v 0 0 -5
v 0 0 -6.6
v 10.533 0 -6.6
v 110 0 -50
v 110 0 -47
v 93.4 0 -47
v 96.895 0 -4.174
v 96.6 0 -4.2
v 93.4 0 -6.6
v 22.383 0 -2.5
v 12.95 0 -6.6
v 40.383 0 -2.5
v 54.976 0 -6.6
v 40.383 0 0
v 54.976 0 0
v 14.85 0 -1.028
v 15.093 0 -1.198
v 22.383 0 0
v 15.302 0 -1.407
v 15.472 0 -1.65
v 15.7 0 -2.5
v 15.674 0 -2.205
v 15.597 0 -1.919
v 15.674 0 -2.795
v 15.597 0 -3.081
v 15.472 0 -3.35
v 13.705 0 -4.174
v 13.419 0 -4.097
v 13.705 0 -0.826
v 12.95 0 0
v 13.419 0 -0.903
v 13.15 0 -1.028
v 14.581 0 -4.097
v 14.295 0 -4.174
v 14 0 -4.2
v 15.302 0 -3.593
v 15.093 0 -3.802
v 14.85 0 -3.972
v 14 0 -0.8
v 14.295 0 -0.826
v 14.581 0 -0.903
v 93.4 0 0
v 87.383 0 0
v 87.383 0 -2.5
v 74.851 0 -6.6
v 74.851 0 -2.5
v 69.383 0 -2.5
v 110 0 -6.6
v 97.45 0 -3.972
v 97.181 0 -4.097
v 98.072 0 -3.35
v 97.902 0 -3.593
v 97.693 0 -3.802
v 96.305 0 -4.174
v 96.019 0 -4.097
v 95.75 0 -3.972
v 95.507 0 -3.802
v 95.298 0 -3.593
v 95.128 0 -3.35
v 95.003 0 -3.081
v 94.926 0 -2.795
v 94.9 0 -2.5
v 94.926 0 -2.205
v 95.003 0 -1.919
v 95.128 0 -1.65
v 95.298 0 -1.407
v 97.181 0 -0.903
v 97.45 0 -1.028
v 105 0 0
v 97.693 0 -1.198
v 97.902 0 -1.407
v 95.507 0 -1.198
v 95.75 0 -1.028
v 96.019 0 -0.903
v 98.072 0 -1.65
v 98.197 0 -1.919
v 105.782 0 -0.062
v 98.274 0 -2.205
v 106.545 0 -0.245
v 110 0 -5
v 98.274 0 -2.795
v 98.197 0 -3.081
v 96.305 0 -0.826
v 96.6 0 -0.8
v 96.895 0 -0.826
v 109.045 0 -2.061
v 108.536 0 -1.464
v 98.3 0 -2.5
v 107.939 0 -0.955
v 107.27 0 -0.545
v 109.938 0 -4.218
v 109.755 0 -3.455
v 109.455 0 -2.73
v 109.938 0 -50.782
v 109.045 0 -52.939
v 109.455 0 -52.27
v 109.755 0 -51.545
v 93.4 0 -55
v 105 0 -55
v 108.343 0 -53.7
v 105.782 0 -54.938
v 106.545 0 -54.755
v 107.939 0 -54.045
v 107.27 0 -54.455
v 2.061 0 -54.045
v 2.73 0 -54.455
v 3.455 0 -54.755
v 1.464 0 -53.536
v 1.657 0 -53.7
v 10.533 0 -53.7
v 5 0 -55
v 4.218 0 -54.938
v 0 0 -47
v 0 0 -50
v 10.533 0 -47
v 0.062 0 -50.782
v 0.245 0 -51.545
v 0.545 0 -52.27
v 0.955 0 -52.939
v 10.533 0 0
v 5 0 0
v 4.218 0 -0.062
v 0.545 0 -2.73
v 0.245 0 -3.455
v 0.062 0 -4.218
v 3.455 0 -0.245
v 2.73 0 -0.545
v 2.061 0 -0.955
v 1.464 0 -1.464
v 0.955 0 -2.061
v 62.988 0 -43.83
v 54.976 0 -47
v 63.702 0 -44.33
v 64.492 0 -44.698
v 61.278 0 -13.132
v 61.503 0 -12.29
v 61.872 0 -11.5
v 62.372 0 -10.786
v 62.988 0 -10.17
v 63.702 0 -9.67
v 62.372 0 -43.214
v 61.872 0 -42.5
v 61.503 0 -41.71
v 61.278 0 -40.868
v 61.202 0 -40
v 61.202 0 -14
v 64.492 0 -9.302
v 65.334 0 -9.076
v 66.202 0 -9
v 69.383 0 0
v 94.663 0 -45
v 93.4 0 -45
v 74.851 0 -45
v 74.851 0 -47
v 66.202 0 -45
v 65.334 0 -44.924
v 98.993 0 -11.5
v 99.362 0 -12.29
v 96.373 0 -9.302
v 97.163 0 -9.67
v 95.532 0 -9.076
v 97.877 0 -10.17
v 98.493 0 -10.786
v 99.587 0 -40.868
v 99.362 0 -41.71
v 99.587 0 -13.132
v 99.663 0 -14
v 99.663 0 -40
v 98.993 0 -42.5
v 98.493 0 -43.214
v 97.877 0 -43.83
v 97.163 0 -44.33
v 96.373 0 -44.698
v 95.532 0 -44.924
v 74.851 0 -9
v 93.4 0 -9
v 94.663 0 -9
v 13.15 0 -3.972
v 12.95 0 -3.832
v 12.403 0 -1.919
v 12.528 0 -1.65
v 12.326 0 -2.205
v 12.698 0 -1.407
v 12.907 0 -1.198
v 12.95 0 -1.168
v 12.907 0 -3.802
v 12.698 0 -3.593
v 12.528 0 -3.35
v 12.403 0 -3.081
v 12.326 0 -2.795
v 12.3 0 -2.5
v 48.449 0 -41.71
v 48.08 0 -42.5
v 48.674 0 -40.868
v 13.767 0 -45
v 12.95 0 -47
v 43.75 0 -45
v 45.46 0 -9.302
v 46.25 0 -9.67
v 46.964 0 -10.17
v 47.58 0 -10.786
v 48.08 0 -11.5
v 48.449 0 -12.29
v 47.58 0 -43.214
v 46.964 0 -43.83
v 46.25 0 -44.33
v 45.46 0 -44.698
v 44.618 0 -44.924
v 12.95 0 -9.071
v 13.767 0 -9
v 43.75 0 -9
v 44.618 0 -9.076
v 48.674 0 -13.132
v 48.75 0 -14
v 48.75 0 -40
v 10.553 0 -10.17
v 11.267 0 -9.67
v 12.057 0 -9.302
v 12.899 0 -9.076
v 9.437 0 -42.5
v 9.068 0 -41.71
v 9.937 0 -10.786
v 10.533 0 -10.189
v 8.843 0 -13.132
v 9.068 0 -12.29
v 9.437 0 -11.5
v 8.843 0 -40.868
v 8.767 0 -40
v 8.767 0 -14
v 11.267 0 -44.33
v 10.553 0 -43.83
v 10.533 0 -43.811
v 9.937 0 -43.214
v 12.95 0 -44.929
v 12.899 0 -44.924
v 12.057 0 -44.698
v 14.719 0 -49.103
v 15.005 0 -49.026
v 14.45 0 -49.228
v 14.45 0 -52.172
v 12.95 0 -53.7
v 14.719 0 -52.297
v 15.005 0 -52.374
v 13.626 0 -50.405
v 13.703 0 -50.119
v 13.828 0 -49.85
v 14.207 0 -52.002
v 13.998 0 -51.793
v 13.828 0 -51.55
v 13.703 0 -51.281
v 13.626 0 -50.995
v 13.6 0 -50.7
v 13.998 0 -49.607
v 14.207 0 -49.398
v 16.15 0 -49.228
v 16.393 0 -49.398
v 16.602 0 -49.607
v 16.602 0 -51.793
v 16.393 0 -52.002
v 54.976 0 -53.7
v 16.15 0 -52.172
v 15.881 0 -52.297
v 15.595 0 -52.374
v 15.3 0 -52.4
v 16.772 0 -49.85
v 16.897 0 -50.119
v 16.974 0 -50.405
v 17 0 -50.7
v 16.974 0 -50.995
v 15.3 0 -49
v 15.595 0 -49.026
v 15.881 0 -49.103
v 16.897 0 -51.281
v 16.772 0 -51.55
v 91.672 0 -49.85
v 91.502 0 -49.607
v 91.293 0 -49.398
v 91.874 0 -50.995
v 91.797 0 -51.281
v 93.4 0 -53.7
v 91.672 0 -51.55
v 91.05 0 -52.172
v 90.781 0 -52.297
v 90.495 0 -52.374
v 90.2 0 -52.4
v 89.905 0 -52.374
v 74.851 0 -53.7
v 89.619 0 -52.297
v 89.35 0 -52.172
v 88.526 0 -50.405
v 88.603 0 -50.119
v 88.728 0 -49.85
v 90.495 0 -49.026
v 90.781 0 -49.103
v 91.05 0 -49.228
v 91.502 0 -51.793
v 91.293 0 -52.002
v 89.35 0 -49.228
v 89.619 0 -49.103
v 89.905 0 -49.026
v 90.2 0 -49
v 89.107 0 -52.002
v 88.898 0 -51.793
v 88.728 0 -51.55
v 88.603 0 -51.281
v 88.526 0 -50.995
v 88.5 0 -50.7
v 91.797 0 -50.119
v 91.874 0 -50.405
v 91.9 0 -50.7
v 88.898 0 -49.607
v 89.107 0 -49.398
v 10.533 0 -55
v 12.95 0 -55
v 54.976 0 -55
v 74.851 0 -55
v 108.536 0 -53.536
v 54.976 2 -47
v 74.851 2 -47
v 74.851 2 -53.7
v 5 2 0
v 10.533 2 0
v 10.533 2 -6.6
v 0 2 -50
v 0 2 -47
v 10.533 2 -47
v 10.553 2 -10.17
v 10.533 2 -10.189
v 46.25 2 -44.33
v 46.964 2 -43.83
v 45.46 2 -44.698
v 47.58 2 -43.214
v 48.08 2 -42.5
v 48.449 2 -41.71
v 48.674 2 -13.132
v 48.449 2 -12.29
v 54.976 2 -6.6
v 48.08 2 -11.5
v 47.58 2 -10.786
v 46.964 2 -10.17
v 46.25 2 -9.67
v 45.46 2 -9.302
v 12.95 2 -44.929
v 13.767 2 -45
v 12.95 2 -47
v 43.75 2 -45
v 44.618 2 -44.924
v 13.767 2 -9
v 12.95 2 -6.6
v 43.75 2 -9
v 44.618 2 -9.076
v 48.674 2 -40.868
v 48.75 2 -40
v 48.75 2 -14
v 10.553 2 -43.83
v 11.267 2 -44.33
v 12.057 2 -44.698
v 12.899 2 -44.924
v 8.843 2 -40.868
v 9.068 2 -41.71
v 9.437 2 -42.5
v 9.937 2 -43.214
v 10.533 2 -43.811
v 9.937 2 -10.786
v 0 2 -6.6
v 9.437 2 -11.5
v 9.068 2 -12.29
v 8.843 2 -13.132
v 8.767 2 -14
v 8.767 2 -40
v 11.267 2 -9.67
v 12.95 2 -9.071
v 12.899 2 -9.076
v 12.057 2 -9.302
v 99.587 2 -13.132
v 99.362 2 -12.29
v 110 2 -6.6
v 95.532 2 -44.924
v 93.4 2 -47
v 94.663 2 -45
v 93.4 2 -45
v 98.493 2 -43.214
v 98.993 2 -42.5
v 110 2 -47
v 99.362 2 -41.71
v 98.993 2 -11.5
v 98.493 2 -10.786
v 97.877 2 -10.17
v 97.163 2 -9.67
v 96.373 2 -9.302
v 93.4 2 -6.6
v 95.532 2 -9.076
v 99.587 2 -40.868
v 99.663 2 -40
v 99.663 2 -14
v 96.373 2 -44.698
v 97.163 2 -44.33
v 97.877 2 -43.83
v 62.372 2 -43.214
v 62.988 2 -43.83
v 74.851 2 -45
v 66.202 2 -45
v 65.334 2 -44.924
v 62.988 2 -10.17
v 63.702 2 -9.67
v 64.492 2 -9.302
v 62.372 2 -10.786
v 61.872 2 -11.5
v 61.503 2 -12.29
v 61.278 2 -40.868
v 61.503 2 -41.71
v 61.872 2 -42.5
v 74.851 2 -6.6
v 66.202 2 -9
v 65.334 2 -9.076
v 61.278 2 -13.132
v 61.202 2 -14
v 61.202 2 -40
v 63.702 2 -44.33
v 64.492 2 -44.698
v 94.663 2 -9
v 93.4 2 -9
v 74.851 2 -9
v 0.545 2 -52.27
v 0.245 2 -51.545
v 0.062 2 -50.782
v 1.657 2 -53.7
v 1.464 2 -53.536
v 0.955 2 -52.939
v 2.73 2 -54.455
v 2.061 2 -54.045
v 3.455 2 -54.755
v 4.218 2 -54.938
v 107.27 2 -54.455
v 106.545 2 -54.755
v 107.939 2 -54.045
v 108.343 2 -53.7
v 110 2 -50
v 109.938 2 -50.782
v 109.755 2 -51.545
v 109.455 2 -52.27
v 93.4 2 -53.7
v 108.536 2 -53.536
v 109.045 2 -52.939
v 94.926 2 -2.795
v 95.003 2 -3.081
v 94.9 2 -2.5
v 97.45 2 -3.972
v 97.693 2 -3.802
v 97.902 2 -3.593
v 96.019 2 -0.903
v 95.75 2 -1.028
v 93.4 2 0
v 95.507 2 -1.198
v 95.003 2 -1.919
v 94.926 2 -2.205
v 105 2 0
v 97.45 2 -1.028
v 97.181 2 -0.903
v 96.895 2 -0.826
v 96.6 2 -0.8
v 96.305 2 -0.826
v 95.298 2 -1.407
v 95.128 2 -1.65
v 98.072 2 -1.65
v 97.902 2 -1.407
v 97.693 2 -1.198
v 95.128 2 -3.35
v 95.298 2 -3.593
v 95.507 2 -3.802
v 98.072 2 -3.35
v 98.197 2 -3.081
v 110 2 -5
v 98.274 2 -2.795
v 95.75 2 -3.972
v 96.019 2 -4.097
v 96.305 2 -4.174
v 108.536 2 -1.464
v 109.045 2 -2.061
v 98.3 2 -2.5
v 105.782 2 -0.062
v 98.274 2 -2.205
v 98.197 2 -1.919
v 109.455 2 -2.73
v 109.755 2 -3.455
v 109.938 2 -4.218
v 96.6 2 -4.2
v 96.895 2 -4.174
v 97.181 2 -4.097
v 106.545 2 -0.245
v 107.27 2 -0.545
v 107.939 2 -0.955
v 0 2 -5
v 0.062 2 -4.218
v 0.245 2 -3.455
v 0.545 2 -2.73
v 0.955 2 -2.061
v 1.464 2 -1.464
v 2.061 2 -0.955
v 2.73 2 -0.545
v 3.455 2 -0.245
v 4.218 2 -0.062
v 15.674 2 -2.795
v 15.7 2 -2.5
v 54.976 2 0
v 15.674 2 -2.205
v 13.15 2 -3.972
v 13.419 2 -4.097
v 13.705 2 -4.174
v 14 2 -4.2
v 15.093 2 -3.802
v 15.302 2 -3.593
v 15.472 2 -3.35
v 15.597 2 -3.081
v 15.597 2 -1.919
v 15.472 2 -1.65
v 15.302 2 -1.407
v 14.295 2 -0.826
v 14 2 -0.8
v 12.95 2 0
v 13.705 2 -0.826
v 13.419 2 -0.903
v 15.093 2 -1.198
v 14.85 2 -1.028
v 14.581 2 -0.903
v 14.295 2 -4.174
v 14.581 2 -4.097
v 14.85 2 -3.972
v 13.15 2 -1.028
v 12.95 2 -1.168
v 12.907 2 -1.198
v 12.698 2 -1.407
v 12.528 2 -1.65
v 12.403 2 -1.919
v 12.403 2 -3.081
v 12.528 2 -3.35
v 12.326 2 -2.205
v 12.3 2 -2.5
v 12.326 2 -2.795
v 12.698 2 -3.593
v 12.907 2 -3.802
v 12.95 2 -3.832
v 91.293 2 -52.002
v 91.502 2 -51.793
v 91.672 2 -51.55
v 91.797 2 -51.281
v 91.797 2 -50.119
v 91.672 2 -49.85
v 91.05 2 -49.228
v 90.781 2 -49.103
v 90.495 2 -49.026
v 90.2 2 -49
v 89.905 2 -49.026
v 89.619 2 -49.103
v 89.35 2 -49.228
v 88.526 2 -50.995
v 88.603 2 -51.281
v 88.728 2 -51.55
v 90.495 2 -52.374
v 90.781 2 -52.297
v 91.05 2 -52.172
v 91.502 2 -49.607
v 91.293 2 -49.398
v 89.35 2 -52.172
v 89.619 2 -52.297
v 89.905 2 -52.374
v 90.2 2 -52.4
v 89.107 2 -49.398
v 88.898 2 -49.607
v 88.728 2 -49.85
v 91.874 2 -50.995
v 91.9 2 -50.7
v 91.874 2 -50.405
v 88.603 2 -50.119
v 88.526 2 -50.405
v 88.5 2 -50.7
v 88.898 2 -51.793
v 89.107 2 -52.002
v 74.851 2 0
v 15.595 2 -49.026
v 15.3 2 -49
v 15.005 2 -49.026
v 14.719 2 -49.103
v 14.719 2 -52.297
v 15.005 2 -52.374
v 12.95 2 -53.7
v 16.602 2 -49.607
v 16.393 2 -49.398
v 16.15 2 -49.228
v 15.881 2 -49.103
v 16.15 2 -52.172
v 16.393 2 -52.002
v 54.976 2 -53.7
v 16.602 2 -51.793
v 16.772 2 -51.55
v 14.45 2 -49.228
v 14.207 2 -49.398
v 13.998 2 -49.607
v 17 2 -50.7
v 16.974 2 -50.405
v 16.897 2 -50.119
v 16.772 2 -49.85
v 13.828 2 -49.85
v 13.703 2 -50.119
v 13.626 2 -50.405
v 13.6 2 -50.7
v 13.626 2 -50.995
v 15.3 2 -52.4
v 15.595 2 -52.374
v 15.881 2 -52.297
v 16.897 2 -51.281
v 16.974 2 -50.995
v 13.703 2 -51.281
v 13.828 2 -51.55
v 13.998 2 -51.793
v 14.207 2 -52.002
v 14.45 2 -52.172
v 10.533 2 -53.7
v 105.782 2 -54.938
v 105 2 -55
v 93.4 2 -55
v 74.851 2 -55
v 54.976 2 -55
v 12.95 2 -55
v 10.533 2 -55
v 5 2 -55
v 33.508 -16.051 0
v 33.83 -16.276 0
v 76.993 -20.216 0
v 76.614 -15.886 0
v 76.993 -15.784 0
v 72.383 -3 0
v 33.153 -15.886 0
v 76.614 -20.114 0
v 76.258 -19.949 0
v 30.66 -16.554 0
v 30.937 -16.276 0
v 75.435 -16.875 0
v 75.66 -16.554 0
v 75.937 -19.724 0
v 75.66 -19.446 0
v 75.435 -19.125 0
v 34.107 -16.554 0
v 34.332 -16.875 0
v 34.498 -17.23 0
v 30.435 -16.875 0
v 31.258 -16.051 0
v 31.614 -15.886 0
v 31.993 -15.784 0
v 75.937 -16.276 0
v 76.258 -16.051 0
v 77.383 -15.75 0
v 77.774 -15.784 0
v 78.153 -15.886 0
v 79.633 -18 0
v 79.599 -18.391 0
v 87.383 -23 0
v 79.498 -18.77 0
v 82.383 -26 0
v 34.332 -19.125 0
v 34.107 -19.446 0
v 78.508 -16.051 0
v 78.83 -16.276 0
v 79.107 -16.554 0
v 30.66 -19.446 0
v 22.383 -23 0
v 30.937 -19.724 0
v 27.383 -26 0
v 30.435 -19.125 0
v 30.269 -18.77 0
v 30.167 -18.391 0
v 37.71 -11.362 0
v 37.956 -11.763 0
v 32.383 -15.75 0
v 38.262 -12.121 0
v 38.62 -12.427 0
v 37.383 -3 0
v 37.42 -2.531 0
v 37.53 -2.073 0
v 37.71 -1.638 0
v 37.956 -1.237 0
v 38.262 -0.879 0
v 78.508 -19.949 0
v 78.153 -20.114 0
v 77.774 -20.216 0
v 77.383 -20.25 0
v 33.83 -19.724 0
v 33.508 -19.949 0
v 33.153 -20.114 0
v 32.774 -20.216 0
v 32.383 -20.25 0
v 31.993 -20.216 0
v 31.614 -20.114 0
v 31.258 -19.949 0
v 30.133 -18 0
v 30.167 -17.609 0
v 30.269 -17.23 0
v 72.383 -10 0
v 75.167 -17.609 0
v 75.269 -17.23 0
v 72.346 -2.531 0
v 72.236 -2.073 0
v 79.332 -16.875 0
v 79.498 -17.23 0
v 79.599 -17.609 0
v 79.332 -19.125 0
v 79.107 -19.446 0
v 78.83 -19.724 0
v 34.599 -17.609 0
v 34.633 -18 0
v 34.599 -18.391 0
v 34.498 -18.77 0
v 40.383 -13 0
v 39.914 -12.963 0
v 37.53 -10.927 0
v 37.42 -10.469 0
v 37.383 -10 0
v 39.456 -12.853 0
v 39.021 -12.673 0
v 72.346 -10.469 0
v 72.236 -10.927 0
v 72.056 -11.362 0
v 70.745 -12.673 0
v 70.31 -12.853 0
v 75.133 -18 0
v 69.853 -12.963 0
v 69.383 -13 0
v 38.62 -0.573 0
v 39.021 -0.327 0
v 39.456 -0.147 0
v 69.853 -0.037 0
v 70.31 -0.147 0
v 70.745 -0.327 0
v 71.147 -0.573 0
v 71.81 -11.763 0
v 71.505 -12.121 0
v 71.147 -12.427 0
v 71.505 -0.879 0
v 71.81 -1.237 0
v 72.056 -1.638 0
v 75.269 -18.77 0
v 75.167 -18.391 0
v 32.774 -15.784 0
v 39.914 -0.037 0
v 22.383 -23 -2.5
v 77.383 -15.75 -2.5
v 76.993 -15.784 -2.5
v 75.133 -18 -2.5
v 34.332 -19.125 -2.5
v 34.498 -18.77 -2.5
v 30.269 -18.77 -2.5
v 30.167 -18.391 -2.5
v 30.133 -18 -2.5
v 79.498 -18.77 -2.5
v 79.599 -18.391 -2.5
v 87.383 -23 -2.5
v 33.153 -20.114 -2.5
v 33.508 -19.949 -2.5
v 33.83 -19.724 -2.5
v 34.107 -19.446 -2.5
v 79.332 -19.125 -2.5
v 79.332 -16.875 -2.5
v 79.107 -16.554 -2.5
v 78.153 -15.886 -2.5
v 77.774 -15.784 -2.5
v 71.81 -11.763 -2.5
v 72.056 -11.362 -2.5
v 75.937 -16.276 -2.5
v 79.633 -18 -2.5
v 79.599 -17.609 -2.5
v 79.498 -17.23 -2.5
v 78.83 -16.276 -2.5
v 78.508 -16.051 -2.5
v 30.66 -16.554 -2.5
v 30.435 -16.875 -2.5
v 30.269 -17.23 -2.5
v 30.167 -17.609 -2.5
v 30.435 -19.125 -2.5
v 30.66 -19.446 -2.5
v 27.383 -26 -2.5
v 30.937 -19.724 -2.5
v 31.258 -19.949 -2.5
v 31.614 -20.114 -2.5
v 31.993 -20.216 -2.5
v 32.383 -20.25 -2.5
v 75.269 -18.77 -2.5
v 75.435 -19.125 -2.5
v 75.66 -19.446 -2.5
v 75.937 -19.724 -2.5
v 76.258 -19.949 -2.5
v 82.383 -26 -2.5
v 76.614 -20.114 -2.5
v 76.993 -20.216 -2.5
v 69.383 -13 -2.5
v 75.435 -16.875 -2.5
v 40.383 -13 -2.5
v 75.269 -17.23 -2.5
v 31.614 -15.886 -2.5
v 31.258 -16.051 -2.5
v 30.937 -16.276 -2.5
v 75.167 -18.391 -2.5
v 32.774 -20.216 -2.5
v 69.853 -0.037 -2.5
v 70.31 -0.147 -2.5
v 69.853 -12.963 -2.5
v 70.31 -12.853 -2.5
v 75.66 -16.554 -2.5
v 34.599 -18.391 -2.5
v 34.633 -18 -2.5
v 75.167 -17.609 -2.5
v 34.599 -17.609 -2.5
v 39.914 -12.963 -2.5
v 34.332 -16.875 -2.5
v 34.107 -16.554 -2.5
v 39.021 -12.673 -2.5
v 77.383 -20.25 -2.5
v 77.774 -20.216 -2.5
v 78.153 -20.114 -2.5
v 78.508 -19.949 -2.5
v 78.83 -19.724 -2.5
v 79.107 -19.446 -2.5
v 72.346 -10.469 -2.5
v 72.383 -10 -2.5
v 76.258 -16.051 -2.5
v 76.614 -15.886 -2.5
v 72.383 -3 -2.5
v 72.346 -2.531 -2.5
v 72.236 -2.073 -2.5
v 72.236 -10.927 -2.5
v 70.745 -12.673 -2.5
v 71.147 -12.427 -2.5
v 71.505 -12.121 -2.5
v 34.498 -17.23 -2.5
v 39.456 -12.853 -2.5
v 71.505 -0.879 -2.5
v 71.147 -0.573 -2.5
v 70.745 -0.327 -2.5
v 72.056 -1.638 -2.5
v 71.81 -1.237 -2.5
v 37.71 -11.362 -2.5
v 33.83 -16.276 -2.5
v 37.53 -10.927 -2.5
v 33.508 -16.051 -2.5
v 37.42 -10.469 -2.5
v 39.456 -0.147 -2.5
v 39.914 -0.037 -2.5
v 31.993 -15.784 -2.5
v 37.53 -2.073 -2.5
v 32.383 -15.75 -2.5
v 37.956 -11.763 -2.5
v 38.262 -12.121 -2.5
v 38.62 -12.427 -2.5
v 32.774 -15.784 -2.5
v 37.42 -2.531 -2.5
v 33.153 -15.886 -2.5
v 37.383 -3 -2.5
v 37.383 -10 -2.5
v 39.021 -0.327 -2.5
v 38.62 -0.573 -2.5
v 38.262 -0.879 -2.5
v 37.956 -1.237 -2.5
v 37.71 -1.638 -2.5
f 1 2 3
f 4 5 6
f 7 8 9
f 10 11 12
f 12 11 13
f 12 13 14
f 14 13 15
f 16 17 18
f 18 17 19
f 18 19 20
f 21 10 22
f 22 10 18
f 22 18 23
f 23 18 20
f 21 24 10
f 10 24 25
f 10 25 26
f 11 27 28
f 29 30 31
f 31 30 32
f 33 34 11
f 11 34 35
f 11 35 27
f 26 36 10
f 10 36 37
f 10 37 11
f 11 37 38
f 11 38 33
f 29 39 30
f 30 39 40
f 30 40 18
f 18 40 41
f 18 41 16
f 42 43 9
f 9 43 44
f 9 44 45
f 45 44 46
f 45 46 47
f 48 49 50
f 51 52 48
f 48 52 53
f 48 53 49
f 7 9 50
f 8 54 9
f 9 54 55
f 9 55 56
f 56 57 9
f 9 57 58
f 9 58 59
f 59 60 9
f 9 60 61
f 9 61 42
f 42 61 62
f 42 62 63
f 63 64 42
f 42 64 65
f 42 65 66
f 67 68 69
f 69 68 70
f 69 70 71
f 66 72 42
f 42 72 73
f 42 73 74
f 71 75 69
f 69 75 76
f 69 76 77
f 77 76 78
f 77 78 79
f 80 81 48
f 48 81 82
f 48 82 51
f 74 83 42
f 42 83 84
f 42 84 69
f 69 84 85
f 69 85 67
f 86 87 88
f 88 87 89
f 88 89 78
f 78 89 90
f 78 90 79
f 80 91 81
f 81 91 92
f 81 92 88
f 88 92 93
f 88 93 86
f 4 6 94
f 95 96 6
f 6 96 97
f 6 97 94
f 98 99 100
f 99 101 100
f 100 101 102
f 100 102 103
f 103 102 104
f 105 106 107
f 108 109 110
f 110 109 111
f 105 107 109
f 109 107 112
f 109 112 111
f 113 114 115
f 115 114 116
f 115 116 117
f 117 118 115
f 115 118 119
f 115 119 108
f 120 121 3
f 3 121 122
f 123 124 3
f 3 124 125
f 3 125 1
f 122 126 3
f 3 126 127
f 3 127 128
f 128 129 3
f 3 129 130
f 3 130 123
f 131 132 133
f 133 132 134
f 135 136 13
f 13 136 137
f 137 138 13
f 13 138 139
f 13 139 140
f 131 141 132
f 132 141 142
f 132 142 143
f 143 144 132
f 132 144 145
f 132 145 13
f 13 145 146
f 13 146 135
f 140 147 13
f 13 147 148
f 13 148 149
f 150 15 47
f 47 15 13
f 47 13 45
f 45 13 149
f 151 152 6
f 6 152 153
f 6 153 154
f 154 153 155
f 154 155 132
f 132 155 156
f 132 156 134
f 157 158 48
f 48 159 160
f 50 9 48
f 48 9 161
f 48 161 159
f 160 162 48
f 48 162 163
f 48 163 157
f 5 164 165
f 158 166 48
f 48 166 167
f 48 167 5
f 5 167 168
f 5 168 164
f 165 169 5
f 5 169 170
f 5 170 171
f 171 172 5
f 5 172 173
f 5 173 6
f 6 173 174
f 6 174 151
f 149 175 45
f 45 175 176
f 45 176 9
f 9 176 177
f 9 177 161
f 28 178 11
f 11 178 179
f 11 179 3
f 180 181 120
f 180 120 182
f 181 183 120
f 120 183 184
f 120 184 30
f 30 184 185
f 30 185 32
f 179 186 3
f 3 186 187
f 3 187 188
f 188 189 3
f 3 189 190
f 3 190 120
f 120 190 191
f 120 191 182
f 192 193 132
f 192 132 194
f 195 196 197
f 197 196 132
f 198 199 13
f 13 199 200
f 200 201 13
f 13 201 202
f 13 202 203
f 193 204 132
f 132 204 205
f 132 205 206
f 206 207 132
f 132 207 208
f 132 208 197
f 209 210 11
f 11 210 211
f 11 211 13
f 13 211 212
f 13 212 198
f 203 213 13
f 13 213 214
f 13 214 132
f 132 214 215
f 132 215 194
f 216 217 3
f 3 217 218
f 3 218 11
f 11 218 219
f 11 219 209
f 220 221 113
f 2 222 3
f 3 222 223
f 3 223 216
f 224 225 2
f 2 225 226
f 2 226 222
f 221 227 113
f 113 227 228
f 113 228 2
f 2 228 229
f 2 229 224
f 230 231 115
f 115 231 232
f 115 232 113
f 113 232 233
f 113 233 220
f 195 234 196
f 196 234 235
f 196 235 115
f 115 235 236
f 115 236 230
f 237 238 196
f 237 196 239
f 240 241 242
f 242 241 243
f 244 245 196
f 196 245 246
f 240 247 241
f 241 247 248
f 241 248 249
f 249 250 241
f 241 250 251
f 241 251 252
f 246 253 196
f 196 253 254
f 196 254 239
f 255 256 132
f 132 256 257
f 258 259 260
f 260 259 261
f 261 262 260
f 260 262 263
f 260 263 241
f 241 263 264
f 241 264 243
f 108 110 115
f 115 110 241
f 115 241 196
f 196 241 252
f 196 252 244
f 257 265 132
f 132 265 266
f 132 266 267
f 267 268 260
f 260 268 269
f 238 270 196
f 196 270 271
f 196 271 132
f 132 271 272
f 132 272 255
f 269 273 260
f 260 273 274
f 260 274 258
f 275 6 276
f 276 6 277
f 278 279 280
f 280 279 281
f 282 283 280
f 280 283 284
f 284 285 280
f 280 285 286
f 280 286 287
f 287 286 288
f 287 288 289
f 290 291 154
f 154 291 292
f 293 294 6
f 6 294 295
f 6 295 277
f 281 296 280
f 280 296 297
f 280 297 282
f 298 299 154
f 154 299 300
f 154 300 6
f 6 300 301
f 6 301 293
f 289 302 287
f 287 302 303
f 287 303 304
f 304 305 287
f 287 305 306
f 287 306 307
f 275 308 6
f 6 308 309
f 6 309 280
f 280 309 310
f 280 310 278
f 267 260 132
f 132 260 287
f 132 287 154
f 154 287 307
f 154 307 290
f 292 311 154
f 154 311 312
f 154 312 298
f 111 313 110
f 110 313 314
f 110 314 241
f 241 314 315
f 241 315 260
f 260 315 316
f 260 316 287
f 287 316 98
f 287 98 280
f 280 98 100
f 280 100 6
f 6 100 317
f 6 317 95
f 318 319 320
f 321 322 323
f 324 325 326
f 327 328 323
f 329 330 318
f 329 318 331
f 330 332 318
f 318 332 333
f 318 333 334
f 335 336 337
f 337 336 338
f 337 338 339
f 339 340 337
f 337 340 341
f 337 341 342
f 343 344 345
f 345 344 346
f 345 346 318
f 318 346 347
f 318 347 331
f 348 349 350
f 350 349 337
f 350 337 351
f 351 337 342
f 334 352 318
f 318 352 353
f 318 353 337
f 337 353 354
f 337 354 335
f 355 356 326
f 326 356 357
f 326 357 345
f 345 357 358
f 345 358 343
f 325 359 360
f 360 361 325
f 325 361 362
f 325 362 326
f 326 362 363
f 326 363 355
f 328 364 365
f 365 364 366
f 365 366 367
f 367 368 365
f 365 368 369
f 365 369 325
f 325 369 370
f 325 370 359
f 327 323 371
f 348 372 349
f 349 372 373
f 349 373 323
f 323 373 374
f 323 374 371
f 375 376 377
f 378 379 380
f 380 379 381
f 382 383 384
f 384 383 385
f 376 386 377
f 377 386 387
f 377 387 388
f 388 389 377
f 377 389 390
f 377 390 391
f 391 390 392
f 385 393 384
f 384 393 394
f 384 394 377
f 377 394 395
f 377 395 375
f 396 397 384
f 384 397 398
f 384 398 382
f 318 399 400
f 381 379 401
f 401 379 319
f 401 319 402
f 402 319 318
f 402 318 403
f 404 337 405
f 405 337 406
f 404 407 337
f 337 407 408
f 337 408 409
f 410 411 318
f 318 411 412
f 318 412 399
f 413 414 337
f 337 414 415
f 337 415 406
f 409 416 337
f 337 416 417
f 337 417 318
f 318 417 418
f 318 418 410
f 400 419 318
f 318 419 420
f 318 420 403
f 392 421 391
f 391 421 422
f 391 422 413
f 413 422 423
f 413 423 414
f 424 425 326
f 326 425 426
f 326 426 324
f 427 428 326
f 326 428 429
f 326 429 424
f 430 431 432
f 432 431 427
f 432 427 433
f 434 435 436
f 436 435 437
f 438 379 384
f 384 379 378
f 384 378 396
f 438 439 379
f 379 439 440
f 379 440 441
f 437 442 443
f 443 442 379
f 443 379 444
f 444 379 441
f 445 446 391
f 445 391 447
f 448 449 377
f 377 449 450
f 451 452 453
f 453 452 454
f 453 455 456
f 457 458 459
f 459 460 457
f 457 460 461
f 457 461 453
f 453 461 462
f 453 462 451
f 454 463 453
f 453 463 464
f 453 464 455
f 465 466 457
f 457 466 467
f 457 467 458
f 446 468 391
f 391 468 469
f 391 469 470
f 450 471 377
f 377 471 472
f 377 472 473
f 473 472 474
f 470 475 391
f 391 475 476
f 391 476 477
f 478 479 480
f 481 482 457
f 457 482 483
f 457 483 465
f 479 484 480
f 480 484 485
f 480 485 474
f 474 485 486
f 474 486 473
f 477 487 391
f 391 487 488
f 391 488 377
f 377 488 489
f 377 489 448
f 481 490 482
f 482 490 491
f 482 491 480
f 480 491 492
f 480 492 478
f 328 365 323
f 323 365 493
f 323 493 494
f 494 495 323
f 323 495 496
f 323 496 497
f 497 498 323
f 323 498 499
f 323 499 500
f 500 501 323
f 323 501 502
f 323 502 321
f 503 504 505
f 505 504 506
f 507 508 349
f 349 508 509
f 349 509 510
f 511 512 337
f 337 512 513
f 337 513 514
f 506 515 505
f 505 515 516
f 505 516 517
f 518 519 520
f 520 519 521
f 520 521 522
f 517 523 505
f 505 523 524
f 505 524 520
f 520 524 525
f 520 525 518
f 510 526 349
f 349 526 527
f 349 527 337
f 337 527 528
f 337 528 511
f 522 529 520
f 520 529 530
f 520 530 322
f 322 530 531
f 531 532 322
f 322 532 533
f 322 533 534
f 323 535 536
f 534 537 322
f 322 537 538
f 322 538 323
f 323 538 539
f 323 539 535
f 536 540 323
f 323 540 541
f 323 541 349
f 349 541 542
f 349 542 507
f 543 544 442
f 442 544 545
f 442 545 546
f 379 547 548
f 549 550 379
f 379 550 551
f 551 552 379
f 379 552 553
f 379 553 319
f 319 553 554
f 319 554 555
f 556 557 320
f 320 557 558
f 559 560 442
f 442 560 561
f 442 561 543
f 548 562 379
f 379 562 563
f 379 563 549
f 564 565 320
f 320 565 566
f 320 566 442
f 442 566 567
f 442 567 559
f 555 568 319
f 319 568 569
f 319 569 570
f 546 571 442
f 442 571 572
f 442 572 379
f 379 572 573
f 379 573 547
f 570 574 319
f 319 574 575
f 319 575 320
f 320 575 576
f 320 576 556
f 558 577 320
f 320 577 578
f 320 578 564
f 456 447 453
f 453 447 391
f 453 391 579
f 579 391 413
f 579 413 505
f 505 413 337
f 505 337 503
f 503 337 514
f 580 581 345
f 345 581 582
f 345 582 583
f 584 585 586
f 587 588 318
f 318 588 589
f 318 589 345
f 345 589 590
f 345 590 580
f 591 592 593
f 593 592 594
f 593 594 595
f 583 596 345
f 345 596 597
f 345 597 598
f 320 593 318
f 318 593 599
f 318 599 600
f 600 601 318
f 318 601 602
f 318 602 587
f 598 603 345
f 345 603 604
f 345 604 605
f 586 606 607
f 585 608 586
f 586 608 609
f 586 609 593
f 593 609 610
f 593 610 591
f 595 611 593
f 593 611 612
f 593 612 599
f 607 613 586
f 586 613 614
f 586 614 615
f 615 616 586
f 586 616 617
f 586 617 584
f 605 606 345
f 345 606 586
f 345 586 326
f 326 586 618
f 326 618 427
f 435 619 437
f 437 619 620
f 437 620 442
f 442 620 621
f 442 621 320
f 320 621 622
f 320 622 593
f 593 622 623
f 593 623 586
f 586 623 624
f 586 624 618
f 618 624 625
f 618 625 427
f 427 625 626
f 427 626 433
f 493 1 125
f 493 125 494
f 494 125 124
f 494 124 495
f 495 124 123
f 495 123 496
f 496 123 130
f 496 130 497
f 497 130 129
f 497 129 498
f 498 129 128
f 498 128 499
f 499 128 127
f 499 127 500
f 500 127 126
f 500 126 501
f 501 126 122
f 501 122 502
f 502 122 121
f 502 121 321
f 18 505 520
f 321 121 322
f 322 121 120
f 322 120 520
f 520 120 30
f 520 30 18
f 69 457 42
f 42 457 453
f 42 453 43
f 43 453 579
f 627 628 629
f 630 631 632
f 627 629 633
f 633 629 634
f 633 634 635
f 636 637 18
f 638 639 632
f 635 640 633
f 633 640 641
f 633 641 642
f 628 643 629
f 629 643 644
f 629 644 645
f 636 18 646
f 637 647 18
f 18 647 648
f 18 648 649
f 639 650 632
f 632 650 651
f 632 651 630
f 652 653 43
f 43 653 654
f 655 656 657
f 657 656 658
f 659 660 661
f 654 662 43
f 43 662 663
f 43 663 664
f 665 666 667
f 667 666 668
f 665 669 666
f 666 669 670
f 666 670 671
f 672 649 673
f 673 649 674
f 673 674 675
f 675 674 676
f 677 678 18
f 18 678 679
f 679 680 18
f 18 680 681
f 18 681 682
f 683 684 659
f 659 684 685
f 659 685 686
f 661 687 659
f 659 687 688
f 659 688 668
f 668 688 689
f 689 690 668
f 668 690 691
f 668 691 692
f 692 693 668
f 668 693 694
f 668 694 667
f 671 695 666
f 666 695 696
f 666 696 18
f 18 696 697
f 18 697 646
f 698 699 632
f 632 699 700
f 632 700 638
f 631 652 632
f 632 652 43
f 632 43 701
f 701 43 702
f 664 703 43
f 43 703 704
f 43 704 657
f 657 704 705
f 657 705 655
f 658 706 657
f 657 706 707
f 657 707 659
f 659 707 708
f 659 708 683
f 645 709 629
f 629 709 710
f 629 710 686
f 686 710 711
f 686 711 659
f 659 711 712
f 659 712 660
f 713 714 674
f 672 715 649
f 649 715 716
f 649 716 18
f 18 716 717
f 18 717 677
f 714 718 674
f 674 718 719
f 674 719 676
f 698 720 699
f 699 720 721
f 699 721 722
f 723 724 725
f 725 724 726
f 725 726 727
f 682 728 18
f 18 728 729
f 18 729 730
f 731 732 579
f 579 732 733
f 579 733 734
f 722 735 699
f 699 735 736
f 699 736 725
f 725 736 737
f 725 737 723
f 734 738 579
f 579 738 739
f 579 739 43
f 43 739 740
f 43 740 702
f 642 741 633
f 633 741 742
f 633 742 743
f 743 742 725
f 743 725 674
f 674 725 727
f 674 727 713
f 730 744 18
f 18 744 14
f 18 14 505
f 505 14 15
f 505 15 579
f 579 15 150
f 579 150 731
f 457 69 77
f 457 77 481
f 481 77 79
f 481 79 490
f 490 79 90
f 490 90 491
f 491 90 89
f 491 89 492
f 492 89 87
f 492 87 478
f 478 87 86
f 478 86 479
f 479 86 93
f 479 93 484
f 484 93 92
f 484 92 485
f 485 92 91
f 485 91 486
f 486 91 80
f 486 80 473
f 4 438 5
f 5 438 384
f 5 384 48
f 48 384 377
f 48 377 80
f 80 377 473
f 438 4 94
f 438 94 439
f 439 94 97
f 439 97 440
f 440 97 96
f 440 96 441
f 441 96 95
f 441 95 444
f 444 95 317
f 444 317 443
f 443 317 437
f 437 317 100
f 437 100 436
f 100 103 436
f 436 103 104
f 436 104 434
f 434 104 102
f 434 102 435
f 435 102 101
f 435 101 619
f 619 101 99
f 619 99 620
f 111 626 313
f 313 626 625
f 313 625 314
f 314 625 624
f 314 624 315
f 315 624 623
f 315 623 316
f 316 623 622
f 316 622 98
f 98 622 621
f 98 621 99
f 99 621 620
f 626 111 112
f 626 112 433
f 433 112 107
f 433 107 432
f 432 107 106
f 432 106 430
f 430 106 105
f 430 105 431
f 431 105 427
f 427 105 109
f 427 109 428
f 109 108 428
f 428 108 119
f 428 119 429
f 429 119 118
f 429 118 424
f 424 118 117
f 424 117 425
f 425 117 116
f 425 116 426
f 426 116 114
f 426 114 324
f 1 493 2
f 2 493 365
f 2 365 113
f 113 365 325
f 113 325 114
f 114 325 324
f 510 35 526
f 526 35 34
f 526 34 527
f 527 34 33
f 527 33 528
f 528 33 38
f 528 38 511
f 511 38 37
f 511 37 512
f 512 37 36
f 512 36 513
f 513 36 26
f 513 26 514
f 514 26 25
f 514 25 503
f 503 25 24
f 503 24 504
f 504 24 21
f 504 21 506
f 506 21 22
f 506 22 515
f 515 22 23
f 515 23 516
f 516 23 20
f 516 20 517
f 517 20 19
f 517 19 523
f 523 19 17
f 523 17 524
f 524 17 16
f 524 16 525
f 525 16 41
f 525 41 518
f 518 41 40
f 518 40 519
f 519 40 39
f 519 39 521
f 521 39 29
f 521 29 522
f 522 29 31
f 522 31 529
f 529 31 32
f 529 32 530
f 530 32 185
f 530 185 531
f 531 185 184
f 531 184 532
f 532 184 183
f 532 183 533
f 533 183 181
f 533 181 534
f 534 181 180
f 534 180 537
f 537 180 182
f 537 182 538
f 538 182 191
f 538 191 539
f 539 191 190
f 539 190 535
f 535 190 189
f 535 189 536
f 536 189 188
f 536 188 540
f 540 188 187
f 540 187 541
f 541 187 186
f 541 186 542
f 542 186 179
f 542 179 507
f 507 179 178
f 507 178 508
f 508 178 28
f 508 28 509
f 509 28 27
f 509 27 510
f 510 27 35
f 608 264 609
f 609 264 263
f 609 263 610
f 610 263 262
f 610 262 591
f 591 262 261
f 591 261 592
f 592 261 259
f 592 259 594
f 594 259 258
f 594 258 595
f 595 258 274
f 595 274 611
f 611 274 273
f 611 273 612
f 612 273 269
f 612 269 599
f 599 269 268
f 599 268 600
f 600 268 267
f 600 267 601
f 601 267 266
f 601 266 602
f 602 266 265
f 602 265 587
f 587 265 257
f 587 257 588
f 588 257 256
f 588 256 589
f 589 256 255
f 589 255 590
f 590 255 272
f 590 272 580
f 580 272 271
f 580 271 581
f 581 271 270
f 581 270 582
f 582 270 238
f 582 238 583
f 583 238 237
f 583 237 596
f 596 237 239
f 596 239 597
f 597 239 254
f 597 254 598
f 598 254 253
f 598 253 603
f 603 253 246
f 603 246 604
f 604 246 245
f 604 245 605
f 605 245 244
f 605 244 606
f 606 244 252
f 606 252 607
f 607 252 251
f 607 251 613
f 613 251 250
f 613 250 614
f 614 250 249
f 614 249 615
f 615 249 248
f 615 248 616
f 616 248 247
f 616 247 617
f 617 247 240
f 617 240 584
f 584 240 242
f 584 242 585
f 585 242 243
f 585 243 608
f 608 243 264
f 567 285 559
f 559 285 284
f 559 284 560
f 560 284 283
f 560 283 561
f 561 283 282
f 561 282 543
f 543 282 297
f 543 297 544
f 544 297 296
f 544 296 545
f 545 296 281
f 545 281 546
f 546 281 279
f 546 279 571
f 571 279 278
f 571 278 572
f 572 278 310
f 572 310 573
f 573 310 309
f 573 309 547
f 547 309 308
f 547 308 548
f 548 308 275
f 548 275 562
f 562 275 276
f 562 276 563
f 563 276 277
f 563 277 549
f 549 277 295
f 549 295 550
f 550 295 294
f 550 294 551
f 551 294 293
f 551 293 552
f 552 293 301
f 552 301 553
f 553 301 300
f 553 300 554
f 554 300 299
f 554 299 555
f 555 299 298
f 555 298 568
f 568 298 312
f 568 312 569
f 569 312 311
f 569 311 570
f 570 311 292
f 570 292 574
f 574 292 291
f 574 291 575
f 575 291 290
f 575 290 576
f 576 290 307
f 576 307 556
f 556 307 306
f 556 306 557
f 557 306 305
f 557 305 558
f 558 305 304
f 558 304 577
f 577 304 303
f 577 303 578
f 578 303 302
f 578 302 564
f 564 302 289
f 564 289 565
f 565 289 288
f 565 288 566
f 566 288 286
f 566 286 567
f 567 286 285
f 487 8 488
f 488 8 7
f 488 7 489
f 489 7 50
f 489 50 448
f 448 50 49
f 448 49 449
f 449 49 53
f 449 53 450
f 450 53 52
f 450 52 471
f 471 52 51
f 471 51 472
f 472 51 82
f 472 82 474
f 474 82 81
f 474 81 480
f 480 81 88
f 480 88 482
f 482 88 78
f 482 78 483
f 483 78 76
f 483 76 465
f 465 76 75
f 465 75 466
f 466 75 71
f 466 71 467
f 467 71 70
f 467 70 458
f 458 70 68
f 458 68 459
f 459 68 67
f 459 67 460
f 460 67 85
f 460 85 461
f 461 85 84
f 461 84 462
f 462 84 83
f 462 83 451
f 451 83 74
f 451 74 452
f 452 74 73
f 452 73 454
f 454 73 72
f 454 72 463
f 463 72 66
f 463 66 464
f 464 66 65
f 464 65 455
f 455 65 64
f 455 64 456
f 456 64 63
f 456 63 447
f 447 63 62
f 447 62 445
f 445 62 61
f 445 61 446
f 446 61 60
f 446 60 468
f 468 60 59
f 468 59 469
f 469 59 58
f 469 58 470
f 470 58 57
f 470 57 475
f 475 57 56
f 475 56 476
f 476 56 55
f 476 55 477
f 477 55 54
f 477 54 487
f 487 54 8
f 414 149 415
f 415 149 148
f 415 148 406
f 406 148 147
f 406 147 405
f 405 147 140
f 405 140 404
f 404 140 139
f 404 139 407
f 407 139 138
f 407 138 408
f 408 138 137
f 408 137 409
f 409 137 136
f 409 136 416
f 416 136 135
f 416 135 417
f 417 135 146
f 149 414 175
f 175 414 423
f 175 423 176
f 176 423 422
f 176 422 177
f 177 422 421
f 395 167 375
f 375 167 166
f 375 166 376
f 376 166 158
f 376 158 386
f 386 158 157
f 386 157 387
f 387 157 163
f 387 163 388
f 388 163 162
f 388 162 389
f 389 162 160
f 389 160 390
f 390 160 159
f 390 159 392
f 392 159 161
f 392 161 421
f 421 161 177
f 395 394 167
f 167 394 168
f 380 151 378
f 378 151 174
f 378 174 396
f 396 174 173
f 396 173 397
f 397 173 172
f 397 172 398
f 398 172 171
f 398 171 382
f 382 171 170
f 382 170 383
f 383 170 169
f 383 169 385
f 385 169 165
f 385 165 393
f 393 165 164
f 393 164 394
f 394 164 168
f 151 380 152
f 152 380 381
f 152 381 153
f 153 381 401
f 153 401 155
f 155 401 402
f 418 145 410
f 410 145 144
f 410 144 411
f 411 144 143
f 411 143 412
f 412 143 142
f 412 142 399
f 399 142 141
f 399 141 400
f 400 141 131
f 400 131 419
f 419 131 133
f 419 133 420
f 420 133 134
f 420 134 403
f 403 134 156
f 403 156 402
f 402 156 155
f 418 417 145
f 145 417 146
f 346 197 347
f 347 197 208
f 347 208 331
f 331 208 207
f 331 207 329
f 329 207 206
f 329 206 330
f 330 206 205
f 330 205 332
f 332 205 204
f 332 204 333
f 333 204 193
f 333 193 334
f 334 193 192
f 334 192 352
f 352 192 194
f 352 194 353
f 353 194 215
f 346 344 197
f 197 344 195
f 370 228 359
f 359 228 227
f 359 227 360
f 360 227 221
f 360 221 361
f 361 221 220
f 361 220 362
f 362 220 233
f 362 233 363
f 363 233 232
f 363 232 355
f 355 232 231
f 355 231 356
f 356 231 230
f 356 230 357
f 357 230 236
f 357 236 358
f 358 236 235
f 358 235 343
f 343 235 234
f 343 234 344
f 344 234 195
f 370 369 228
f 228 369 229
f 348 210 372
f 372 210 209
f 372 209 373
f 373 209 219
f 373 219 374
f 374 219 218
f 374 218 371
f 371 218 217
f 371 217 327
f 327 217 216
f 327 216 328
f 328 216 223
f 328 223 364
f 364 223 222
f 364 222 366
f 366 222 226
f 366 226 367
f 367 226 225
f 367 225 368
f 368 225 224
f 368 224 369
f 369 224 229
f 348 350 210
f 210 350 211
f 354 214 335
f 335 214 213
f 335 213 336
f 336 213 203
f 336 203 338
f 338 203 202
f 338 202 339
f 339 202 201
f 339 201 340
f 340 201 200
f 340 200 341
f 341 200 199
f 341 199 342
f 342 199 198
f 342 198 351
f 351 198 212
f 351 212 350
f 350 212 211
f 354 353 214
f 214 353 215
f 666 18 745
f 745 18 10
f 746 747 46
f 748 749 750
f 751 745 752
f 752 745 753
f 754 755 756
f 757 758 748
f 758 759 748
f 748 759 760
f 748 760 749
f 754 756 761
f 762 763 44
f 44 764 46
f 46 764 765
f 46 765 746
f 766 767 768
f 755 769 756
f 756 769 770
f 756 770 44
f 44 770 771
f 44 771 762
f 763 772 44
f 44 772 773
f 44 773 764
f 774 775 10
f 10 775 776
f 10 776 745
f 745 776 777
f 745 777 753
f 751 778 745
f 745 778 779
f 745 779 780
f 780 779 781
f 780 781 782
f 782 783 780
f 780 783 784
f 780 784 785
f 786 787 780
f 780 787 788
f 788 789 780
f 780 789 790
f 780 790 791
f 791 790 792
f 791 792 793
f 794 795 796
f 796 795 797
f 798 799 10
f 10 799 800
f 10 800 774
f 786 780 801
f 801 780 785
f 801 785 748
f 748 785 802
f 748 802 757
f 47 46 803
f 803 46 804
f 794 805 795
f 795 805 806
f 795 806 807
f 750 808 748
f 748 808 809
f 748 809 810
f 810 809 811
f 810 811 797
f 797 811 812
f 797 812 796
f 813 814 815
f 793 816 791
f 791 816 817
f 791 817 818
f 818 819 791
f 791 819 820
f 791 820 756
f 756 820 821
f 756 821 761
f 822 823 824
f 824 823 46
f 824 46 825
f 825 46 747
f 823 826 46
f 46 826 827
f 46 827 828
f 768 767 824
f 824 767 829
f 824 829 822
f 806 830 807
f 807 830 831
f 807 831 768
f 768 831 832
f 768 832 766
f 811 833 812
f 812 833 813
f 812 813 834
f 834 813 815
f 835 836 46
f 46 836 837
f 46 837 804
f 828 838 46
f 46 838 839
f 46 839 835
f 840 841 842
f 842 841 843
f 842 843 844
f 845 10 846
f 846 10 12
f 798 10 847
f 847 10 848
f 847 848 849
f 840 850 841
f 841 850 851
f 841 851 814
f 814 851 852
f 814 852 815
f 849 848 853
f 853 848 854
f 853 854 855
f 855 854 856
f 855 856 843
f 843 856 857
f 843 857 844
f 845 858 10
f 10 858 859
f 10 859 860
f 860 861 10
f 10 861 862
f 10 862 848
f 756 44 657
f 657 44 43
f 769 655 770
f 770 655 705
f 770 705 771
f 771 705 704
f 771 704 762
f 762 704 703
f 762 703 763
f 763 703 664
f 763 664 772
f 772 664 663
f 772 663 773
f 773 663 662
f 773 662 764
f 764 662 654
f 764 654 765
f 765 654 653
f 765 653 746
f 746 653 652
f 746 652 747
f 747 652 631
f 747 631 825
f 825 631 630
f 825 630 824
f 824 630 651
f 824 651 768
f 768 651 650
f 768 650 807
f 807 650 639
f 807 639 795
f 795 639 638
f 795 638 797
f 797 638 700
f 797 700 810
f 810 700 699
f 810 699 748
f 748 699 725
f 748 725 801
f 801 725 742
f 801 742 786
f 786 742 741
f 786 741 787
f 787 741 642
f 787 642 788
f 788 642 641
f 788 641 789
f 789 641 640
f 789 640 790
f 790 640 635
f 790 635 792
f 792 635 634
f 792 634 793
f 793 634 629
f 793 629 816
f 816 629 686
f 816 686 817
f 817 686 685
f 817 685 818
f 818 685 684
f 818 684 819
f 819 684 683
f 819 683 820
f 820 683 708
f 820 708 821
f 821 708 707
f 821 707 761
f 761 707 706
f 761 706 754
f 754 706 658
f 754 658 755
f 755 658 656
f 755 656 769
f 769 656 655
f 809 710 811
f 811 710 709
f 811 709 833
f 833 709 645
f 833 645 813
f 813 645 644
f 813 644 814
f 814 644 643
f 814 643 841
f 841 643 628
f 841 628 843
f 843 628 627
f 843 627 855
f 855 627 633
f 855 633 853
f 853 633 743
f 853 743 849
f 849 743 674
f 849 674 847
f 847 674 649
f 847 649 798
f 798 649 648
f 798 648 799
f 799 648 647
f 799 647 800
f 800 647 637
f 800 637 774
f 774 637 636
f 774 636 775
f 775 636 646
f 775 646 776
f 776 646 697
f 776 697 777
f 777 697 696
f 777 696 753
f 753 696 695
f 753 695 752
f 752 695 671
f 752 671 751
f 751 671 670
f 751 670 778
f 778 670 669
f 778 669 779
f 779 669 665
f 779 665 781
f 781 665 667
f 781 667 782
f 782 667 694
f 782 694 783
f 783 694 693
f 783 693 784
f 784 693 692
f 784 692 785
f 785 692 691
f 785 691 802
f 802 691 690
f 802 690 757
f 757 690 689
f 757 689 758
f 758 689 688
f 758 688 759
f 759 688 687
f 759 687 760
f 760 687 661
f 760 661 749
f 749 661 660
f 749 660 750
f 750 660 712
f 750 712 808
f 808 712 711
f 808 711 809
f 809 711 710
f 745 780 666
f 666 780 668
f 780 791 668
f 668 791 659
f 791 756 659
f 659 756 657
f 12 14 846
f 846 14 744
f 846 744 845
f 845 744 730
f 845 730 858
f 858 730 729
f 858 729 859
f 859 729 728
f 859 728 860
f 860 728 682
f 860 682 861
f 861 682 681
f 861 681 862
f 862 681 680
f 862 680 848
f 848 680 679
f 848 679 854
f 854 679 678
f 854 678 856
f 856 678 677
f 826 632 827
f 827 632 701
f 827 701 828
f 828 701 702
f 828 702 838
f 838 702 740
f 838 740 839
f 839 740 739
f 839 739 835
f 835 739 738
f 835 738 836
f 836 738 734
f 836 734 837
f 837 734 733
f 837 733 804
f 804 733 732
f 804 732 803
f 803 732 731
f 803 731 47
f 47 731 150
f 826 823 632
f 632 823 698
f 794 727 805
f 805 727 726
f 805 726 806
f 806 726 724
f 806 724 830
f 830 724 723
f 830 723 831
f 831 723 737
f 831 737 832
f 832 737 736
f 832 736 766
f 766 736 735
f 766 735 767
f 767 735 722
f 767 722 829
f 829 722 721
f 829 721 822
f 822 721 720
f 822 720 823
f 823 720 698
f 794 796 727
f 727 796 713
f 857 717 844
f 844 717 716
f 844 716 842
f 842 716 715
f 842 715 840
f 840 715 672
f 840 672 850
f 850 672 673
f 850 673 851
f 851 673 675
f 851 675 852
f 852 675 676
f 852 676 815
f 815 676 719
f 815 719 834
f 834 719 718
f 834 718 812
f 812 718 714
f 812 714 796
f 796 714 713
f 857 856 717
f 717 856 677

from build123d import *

# Parameters (mm, degrees)
SKETCH_1_R          = 1.7
EXTRUDE_2_DEPTH     = 2
SKETCH_2_W          = 65
SKETCH_2_H          = 2.5
EXTRUDE_3_DEPTH     = 30
SKETCH_3_R          = 2.25
CUT_EXTRUDE_1_DEPTH = 2.5


with BuildPart() as part:
    # 草图1 → 凸台-拉伸2 (new body)
    with BuildSketch(Plane(origin=(0, 0, 0), x_dir=(1, 0, 0), z_dir=(0, 1, 0))):
        with BuildLine():
            Line((5, 0), (105, 0))
            ThreePointArc((105, 0), (108.535533906, 1.464466094), (110, 5))
            Line((110, 5), (110, 50))
            ThreePointArc((110, 50), (108.535533906, 53.535533906), (105, 55))
            Line((105, 55), (5, 55))
            ThreePointArc((5, 55), (1.464466094, 53.535533906), (0, 50))
            Line((0, 50), (0, 5))
            ThreePointArc((0, 5), (1.464466094, 1.464466094), (5, 0))
        make_face()
        with Locations(Location((14, 2.5, 0), (0, 0, 270))):
            Circle(SKETCH_1_R, mode=Mode.SUBTRACT)
        with Locations(Location((15.3, 50.7, 0), (0, 0, 270))):
            Circle(SKETCH_1_R, mode=Mode.SUBTRACT)
        with Locations(Location((90.2, 50.7, 0), (0, 0, 270))):
            Circle(SKETCH_1_R, mode=Mode.SUBTRACT)
        with Locations(Location((96.6, 2.5, 0), (0, 0, 270))):
            Circle(SKETCH_1_R, mode=Mode.SUBTRACT)
        with BuildLine():
            Line((13.766884745, 45), (43.750231267, 45))
            ThreePointArc((43.750231267, 45), (47.285765173, 43.535533906), (48.750231267, 40))
            Line((48.750231267, 40), (48.750231267, 14))
            ThreePointArc((48.750231267, 14), (47.285765173, 10.464466094), (43.750231267, 9))
            Line((43.750231267, 9), (13.766884745, 9))
            ThreePointArc((13.766884745, 9), (10.231350839, 10.464466094), (8.766884745, 14))
            Line((8.766884745, 14), (8.766884745, 40))
            ThreePointArc((8.766884745, 40), (10.231350839, 43.535533906), (13.766884745, 45))
        make_face(mode=Mode.SUBTRACT)
        with BuildLine():
            Line((66.201792467, 45), (94.663281509, 45))
            ThreePointArc((94.663281509, 45), (98.198815415, 43.535533906), (99.663281509, 40))
            Line((99.663281509, 40), (99.663281509, 14))
            ThreePointArc((99.663281509, 14), (98.198815415, 10.464466094), (94.663281509, 9))
            Line((94.663281509, 9), (66.201792467, 9))
            ThreePointArc((66.201792467, 9), (62.666258562, 10.464466094), (61.201792467, 14))
            Line((61.201792467, 14), (61.201792467, 40))
            ThreePointArc((61.201792467, 40), (62.666258562, 43.535533906), (66.201792467, 45))
        make_face(mode=Mode.SUBTRACT)
    extrude(amount=EXTRUDE_2_DEPTH)

    # 草图2 → 凸台-拉伸3 (add)
    with BuildSketch(Plane.XZ):
        with Locations((54.883282113, -1.25)):
            Rectangle(SKETCH_2_W, SKETCH_2_H)
    extrude(amount=EXTRUDE_3_DEPTH)

    # 草图3 → 切除-拉伸1 (cut)
    with BuildSketch(Plane.XY):
        with Locations((77.383282113, -18)):
            Circle(SKETCH_3_R)
        with Locations((32.383282113, -18)):
            Circle(SKETCH_3_R)
        Polygon((87.383282113, -30), (87.383282113, -23), (82.383282113, -26), (27.383282113, -26), (22.383282113, -23), (22.383282113, -30), align=None)
        with BuildLine():
            Line((69.383282113, -13), (40.383282113, -13))
            ThreePointArc((40.383282113, -13), (38.26196177, -12.121320344), (37.383282113, -10))
            Line((37.383282113, -10), (37.383282113, -3))
            ThreePointArc((37.383282113, -3), (38.26196177, -0.878679656), (40.383282113, 0))
            Line((40.383282113, 0), (69.383282113, 0))
            ThreePointArc((69.383282113, 0), (71.504602457, -0.878679656), (72.383282113, -3))
            Line((72.383282113, -3), (72.383282113, -10))
            ThreePointArc((72.383282113, -10), (71.504602457, -12.121320344), (69.383282113, -13))
        make_face()
    extrude(amount=-CUT_EXTRUDE_1_DEPTH, mode=Mode.SUBTRACT)


solid = part.part
